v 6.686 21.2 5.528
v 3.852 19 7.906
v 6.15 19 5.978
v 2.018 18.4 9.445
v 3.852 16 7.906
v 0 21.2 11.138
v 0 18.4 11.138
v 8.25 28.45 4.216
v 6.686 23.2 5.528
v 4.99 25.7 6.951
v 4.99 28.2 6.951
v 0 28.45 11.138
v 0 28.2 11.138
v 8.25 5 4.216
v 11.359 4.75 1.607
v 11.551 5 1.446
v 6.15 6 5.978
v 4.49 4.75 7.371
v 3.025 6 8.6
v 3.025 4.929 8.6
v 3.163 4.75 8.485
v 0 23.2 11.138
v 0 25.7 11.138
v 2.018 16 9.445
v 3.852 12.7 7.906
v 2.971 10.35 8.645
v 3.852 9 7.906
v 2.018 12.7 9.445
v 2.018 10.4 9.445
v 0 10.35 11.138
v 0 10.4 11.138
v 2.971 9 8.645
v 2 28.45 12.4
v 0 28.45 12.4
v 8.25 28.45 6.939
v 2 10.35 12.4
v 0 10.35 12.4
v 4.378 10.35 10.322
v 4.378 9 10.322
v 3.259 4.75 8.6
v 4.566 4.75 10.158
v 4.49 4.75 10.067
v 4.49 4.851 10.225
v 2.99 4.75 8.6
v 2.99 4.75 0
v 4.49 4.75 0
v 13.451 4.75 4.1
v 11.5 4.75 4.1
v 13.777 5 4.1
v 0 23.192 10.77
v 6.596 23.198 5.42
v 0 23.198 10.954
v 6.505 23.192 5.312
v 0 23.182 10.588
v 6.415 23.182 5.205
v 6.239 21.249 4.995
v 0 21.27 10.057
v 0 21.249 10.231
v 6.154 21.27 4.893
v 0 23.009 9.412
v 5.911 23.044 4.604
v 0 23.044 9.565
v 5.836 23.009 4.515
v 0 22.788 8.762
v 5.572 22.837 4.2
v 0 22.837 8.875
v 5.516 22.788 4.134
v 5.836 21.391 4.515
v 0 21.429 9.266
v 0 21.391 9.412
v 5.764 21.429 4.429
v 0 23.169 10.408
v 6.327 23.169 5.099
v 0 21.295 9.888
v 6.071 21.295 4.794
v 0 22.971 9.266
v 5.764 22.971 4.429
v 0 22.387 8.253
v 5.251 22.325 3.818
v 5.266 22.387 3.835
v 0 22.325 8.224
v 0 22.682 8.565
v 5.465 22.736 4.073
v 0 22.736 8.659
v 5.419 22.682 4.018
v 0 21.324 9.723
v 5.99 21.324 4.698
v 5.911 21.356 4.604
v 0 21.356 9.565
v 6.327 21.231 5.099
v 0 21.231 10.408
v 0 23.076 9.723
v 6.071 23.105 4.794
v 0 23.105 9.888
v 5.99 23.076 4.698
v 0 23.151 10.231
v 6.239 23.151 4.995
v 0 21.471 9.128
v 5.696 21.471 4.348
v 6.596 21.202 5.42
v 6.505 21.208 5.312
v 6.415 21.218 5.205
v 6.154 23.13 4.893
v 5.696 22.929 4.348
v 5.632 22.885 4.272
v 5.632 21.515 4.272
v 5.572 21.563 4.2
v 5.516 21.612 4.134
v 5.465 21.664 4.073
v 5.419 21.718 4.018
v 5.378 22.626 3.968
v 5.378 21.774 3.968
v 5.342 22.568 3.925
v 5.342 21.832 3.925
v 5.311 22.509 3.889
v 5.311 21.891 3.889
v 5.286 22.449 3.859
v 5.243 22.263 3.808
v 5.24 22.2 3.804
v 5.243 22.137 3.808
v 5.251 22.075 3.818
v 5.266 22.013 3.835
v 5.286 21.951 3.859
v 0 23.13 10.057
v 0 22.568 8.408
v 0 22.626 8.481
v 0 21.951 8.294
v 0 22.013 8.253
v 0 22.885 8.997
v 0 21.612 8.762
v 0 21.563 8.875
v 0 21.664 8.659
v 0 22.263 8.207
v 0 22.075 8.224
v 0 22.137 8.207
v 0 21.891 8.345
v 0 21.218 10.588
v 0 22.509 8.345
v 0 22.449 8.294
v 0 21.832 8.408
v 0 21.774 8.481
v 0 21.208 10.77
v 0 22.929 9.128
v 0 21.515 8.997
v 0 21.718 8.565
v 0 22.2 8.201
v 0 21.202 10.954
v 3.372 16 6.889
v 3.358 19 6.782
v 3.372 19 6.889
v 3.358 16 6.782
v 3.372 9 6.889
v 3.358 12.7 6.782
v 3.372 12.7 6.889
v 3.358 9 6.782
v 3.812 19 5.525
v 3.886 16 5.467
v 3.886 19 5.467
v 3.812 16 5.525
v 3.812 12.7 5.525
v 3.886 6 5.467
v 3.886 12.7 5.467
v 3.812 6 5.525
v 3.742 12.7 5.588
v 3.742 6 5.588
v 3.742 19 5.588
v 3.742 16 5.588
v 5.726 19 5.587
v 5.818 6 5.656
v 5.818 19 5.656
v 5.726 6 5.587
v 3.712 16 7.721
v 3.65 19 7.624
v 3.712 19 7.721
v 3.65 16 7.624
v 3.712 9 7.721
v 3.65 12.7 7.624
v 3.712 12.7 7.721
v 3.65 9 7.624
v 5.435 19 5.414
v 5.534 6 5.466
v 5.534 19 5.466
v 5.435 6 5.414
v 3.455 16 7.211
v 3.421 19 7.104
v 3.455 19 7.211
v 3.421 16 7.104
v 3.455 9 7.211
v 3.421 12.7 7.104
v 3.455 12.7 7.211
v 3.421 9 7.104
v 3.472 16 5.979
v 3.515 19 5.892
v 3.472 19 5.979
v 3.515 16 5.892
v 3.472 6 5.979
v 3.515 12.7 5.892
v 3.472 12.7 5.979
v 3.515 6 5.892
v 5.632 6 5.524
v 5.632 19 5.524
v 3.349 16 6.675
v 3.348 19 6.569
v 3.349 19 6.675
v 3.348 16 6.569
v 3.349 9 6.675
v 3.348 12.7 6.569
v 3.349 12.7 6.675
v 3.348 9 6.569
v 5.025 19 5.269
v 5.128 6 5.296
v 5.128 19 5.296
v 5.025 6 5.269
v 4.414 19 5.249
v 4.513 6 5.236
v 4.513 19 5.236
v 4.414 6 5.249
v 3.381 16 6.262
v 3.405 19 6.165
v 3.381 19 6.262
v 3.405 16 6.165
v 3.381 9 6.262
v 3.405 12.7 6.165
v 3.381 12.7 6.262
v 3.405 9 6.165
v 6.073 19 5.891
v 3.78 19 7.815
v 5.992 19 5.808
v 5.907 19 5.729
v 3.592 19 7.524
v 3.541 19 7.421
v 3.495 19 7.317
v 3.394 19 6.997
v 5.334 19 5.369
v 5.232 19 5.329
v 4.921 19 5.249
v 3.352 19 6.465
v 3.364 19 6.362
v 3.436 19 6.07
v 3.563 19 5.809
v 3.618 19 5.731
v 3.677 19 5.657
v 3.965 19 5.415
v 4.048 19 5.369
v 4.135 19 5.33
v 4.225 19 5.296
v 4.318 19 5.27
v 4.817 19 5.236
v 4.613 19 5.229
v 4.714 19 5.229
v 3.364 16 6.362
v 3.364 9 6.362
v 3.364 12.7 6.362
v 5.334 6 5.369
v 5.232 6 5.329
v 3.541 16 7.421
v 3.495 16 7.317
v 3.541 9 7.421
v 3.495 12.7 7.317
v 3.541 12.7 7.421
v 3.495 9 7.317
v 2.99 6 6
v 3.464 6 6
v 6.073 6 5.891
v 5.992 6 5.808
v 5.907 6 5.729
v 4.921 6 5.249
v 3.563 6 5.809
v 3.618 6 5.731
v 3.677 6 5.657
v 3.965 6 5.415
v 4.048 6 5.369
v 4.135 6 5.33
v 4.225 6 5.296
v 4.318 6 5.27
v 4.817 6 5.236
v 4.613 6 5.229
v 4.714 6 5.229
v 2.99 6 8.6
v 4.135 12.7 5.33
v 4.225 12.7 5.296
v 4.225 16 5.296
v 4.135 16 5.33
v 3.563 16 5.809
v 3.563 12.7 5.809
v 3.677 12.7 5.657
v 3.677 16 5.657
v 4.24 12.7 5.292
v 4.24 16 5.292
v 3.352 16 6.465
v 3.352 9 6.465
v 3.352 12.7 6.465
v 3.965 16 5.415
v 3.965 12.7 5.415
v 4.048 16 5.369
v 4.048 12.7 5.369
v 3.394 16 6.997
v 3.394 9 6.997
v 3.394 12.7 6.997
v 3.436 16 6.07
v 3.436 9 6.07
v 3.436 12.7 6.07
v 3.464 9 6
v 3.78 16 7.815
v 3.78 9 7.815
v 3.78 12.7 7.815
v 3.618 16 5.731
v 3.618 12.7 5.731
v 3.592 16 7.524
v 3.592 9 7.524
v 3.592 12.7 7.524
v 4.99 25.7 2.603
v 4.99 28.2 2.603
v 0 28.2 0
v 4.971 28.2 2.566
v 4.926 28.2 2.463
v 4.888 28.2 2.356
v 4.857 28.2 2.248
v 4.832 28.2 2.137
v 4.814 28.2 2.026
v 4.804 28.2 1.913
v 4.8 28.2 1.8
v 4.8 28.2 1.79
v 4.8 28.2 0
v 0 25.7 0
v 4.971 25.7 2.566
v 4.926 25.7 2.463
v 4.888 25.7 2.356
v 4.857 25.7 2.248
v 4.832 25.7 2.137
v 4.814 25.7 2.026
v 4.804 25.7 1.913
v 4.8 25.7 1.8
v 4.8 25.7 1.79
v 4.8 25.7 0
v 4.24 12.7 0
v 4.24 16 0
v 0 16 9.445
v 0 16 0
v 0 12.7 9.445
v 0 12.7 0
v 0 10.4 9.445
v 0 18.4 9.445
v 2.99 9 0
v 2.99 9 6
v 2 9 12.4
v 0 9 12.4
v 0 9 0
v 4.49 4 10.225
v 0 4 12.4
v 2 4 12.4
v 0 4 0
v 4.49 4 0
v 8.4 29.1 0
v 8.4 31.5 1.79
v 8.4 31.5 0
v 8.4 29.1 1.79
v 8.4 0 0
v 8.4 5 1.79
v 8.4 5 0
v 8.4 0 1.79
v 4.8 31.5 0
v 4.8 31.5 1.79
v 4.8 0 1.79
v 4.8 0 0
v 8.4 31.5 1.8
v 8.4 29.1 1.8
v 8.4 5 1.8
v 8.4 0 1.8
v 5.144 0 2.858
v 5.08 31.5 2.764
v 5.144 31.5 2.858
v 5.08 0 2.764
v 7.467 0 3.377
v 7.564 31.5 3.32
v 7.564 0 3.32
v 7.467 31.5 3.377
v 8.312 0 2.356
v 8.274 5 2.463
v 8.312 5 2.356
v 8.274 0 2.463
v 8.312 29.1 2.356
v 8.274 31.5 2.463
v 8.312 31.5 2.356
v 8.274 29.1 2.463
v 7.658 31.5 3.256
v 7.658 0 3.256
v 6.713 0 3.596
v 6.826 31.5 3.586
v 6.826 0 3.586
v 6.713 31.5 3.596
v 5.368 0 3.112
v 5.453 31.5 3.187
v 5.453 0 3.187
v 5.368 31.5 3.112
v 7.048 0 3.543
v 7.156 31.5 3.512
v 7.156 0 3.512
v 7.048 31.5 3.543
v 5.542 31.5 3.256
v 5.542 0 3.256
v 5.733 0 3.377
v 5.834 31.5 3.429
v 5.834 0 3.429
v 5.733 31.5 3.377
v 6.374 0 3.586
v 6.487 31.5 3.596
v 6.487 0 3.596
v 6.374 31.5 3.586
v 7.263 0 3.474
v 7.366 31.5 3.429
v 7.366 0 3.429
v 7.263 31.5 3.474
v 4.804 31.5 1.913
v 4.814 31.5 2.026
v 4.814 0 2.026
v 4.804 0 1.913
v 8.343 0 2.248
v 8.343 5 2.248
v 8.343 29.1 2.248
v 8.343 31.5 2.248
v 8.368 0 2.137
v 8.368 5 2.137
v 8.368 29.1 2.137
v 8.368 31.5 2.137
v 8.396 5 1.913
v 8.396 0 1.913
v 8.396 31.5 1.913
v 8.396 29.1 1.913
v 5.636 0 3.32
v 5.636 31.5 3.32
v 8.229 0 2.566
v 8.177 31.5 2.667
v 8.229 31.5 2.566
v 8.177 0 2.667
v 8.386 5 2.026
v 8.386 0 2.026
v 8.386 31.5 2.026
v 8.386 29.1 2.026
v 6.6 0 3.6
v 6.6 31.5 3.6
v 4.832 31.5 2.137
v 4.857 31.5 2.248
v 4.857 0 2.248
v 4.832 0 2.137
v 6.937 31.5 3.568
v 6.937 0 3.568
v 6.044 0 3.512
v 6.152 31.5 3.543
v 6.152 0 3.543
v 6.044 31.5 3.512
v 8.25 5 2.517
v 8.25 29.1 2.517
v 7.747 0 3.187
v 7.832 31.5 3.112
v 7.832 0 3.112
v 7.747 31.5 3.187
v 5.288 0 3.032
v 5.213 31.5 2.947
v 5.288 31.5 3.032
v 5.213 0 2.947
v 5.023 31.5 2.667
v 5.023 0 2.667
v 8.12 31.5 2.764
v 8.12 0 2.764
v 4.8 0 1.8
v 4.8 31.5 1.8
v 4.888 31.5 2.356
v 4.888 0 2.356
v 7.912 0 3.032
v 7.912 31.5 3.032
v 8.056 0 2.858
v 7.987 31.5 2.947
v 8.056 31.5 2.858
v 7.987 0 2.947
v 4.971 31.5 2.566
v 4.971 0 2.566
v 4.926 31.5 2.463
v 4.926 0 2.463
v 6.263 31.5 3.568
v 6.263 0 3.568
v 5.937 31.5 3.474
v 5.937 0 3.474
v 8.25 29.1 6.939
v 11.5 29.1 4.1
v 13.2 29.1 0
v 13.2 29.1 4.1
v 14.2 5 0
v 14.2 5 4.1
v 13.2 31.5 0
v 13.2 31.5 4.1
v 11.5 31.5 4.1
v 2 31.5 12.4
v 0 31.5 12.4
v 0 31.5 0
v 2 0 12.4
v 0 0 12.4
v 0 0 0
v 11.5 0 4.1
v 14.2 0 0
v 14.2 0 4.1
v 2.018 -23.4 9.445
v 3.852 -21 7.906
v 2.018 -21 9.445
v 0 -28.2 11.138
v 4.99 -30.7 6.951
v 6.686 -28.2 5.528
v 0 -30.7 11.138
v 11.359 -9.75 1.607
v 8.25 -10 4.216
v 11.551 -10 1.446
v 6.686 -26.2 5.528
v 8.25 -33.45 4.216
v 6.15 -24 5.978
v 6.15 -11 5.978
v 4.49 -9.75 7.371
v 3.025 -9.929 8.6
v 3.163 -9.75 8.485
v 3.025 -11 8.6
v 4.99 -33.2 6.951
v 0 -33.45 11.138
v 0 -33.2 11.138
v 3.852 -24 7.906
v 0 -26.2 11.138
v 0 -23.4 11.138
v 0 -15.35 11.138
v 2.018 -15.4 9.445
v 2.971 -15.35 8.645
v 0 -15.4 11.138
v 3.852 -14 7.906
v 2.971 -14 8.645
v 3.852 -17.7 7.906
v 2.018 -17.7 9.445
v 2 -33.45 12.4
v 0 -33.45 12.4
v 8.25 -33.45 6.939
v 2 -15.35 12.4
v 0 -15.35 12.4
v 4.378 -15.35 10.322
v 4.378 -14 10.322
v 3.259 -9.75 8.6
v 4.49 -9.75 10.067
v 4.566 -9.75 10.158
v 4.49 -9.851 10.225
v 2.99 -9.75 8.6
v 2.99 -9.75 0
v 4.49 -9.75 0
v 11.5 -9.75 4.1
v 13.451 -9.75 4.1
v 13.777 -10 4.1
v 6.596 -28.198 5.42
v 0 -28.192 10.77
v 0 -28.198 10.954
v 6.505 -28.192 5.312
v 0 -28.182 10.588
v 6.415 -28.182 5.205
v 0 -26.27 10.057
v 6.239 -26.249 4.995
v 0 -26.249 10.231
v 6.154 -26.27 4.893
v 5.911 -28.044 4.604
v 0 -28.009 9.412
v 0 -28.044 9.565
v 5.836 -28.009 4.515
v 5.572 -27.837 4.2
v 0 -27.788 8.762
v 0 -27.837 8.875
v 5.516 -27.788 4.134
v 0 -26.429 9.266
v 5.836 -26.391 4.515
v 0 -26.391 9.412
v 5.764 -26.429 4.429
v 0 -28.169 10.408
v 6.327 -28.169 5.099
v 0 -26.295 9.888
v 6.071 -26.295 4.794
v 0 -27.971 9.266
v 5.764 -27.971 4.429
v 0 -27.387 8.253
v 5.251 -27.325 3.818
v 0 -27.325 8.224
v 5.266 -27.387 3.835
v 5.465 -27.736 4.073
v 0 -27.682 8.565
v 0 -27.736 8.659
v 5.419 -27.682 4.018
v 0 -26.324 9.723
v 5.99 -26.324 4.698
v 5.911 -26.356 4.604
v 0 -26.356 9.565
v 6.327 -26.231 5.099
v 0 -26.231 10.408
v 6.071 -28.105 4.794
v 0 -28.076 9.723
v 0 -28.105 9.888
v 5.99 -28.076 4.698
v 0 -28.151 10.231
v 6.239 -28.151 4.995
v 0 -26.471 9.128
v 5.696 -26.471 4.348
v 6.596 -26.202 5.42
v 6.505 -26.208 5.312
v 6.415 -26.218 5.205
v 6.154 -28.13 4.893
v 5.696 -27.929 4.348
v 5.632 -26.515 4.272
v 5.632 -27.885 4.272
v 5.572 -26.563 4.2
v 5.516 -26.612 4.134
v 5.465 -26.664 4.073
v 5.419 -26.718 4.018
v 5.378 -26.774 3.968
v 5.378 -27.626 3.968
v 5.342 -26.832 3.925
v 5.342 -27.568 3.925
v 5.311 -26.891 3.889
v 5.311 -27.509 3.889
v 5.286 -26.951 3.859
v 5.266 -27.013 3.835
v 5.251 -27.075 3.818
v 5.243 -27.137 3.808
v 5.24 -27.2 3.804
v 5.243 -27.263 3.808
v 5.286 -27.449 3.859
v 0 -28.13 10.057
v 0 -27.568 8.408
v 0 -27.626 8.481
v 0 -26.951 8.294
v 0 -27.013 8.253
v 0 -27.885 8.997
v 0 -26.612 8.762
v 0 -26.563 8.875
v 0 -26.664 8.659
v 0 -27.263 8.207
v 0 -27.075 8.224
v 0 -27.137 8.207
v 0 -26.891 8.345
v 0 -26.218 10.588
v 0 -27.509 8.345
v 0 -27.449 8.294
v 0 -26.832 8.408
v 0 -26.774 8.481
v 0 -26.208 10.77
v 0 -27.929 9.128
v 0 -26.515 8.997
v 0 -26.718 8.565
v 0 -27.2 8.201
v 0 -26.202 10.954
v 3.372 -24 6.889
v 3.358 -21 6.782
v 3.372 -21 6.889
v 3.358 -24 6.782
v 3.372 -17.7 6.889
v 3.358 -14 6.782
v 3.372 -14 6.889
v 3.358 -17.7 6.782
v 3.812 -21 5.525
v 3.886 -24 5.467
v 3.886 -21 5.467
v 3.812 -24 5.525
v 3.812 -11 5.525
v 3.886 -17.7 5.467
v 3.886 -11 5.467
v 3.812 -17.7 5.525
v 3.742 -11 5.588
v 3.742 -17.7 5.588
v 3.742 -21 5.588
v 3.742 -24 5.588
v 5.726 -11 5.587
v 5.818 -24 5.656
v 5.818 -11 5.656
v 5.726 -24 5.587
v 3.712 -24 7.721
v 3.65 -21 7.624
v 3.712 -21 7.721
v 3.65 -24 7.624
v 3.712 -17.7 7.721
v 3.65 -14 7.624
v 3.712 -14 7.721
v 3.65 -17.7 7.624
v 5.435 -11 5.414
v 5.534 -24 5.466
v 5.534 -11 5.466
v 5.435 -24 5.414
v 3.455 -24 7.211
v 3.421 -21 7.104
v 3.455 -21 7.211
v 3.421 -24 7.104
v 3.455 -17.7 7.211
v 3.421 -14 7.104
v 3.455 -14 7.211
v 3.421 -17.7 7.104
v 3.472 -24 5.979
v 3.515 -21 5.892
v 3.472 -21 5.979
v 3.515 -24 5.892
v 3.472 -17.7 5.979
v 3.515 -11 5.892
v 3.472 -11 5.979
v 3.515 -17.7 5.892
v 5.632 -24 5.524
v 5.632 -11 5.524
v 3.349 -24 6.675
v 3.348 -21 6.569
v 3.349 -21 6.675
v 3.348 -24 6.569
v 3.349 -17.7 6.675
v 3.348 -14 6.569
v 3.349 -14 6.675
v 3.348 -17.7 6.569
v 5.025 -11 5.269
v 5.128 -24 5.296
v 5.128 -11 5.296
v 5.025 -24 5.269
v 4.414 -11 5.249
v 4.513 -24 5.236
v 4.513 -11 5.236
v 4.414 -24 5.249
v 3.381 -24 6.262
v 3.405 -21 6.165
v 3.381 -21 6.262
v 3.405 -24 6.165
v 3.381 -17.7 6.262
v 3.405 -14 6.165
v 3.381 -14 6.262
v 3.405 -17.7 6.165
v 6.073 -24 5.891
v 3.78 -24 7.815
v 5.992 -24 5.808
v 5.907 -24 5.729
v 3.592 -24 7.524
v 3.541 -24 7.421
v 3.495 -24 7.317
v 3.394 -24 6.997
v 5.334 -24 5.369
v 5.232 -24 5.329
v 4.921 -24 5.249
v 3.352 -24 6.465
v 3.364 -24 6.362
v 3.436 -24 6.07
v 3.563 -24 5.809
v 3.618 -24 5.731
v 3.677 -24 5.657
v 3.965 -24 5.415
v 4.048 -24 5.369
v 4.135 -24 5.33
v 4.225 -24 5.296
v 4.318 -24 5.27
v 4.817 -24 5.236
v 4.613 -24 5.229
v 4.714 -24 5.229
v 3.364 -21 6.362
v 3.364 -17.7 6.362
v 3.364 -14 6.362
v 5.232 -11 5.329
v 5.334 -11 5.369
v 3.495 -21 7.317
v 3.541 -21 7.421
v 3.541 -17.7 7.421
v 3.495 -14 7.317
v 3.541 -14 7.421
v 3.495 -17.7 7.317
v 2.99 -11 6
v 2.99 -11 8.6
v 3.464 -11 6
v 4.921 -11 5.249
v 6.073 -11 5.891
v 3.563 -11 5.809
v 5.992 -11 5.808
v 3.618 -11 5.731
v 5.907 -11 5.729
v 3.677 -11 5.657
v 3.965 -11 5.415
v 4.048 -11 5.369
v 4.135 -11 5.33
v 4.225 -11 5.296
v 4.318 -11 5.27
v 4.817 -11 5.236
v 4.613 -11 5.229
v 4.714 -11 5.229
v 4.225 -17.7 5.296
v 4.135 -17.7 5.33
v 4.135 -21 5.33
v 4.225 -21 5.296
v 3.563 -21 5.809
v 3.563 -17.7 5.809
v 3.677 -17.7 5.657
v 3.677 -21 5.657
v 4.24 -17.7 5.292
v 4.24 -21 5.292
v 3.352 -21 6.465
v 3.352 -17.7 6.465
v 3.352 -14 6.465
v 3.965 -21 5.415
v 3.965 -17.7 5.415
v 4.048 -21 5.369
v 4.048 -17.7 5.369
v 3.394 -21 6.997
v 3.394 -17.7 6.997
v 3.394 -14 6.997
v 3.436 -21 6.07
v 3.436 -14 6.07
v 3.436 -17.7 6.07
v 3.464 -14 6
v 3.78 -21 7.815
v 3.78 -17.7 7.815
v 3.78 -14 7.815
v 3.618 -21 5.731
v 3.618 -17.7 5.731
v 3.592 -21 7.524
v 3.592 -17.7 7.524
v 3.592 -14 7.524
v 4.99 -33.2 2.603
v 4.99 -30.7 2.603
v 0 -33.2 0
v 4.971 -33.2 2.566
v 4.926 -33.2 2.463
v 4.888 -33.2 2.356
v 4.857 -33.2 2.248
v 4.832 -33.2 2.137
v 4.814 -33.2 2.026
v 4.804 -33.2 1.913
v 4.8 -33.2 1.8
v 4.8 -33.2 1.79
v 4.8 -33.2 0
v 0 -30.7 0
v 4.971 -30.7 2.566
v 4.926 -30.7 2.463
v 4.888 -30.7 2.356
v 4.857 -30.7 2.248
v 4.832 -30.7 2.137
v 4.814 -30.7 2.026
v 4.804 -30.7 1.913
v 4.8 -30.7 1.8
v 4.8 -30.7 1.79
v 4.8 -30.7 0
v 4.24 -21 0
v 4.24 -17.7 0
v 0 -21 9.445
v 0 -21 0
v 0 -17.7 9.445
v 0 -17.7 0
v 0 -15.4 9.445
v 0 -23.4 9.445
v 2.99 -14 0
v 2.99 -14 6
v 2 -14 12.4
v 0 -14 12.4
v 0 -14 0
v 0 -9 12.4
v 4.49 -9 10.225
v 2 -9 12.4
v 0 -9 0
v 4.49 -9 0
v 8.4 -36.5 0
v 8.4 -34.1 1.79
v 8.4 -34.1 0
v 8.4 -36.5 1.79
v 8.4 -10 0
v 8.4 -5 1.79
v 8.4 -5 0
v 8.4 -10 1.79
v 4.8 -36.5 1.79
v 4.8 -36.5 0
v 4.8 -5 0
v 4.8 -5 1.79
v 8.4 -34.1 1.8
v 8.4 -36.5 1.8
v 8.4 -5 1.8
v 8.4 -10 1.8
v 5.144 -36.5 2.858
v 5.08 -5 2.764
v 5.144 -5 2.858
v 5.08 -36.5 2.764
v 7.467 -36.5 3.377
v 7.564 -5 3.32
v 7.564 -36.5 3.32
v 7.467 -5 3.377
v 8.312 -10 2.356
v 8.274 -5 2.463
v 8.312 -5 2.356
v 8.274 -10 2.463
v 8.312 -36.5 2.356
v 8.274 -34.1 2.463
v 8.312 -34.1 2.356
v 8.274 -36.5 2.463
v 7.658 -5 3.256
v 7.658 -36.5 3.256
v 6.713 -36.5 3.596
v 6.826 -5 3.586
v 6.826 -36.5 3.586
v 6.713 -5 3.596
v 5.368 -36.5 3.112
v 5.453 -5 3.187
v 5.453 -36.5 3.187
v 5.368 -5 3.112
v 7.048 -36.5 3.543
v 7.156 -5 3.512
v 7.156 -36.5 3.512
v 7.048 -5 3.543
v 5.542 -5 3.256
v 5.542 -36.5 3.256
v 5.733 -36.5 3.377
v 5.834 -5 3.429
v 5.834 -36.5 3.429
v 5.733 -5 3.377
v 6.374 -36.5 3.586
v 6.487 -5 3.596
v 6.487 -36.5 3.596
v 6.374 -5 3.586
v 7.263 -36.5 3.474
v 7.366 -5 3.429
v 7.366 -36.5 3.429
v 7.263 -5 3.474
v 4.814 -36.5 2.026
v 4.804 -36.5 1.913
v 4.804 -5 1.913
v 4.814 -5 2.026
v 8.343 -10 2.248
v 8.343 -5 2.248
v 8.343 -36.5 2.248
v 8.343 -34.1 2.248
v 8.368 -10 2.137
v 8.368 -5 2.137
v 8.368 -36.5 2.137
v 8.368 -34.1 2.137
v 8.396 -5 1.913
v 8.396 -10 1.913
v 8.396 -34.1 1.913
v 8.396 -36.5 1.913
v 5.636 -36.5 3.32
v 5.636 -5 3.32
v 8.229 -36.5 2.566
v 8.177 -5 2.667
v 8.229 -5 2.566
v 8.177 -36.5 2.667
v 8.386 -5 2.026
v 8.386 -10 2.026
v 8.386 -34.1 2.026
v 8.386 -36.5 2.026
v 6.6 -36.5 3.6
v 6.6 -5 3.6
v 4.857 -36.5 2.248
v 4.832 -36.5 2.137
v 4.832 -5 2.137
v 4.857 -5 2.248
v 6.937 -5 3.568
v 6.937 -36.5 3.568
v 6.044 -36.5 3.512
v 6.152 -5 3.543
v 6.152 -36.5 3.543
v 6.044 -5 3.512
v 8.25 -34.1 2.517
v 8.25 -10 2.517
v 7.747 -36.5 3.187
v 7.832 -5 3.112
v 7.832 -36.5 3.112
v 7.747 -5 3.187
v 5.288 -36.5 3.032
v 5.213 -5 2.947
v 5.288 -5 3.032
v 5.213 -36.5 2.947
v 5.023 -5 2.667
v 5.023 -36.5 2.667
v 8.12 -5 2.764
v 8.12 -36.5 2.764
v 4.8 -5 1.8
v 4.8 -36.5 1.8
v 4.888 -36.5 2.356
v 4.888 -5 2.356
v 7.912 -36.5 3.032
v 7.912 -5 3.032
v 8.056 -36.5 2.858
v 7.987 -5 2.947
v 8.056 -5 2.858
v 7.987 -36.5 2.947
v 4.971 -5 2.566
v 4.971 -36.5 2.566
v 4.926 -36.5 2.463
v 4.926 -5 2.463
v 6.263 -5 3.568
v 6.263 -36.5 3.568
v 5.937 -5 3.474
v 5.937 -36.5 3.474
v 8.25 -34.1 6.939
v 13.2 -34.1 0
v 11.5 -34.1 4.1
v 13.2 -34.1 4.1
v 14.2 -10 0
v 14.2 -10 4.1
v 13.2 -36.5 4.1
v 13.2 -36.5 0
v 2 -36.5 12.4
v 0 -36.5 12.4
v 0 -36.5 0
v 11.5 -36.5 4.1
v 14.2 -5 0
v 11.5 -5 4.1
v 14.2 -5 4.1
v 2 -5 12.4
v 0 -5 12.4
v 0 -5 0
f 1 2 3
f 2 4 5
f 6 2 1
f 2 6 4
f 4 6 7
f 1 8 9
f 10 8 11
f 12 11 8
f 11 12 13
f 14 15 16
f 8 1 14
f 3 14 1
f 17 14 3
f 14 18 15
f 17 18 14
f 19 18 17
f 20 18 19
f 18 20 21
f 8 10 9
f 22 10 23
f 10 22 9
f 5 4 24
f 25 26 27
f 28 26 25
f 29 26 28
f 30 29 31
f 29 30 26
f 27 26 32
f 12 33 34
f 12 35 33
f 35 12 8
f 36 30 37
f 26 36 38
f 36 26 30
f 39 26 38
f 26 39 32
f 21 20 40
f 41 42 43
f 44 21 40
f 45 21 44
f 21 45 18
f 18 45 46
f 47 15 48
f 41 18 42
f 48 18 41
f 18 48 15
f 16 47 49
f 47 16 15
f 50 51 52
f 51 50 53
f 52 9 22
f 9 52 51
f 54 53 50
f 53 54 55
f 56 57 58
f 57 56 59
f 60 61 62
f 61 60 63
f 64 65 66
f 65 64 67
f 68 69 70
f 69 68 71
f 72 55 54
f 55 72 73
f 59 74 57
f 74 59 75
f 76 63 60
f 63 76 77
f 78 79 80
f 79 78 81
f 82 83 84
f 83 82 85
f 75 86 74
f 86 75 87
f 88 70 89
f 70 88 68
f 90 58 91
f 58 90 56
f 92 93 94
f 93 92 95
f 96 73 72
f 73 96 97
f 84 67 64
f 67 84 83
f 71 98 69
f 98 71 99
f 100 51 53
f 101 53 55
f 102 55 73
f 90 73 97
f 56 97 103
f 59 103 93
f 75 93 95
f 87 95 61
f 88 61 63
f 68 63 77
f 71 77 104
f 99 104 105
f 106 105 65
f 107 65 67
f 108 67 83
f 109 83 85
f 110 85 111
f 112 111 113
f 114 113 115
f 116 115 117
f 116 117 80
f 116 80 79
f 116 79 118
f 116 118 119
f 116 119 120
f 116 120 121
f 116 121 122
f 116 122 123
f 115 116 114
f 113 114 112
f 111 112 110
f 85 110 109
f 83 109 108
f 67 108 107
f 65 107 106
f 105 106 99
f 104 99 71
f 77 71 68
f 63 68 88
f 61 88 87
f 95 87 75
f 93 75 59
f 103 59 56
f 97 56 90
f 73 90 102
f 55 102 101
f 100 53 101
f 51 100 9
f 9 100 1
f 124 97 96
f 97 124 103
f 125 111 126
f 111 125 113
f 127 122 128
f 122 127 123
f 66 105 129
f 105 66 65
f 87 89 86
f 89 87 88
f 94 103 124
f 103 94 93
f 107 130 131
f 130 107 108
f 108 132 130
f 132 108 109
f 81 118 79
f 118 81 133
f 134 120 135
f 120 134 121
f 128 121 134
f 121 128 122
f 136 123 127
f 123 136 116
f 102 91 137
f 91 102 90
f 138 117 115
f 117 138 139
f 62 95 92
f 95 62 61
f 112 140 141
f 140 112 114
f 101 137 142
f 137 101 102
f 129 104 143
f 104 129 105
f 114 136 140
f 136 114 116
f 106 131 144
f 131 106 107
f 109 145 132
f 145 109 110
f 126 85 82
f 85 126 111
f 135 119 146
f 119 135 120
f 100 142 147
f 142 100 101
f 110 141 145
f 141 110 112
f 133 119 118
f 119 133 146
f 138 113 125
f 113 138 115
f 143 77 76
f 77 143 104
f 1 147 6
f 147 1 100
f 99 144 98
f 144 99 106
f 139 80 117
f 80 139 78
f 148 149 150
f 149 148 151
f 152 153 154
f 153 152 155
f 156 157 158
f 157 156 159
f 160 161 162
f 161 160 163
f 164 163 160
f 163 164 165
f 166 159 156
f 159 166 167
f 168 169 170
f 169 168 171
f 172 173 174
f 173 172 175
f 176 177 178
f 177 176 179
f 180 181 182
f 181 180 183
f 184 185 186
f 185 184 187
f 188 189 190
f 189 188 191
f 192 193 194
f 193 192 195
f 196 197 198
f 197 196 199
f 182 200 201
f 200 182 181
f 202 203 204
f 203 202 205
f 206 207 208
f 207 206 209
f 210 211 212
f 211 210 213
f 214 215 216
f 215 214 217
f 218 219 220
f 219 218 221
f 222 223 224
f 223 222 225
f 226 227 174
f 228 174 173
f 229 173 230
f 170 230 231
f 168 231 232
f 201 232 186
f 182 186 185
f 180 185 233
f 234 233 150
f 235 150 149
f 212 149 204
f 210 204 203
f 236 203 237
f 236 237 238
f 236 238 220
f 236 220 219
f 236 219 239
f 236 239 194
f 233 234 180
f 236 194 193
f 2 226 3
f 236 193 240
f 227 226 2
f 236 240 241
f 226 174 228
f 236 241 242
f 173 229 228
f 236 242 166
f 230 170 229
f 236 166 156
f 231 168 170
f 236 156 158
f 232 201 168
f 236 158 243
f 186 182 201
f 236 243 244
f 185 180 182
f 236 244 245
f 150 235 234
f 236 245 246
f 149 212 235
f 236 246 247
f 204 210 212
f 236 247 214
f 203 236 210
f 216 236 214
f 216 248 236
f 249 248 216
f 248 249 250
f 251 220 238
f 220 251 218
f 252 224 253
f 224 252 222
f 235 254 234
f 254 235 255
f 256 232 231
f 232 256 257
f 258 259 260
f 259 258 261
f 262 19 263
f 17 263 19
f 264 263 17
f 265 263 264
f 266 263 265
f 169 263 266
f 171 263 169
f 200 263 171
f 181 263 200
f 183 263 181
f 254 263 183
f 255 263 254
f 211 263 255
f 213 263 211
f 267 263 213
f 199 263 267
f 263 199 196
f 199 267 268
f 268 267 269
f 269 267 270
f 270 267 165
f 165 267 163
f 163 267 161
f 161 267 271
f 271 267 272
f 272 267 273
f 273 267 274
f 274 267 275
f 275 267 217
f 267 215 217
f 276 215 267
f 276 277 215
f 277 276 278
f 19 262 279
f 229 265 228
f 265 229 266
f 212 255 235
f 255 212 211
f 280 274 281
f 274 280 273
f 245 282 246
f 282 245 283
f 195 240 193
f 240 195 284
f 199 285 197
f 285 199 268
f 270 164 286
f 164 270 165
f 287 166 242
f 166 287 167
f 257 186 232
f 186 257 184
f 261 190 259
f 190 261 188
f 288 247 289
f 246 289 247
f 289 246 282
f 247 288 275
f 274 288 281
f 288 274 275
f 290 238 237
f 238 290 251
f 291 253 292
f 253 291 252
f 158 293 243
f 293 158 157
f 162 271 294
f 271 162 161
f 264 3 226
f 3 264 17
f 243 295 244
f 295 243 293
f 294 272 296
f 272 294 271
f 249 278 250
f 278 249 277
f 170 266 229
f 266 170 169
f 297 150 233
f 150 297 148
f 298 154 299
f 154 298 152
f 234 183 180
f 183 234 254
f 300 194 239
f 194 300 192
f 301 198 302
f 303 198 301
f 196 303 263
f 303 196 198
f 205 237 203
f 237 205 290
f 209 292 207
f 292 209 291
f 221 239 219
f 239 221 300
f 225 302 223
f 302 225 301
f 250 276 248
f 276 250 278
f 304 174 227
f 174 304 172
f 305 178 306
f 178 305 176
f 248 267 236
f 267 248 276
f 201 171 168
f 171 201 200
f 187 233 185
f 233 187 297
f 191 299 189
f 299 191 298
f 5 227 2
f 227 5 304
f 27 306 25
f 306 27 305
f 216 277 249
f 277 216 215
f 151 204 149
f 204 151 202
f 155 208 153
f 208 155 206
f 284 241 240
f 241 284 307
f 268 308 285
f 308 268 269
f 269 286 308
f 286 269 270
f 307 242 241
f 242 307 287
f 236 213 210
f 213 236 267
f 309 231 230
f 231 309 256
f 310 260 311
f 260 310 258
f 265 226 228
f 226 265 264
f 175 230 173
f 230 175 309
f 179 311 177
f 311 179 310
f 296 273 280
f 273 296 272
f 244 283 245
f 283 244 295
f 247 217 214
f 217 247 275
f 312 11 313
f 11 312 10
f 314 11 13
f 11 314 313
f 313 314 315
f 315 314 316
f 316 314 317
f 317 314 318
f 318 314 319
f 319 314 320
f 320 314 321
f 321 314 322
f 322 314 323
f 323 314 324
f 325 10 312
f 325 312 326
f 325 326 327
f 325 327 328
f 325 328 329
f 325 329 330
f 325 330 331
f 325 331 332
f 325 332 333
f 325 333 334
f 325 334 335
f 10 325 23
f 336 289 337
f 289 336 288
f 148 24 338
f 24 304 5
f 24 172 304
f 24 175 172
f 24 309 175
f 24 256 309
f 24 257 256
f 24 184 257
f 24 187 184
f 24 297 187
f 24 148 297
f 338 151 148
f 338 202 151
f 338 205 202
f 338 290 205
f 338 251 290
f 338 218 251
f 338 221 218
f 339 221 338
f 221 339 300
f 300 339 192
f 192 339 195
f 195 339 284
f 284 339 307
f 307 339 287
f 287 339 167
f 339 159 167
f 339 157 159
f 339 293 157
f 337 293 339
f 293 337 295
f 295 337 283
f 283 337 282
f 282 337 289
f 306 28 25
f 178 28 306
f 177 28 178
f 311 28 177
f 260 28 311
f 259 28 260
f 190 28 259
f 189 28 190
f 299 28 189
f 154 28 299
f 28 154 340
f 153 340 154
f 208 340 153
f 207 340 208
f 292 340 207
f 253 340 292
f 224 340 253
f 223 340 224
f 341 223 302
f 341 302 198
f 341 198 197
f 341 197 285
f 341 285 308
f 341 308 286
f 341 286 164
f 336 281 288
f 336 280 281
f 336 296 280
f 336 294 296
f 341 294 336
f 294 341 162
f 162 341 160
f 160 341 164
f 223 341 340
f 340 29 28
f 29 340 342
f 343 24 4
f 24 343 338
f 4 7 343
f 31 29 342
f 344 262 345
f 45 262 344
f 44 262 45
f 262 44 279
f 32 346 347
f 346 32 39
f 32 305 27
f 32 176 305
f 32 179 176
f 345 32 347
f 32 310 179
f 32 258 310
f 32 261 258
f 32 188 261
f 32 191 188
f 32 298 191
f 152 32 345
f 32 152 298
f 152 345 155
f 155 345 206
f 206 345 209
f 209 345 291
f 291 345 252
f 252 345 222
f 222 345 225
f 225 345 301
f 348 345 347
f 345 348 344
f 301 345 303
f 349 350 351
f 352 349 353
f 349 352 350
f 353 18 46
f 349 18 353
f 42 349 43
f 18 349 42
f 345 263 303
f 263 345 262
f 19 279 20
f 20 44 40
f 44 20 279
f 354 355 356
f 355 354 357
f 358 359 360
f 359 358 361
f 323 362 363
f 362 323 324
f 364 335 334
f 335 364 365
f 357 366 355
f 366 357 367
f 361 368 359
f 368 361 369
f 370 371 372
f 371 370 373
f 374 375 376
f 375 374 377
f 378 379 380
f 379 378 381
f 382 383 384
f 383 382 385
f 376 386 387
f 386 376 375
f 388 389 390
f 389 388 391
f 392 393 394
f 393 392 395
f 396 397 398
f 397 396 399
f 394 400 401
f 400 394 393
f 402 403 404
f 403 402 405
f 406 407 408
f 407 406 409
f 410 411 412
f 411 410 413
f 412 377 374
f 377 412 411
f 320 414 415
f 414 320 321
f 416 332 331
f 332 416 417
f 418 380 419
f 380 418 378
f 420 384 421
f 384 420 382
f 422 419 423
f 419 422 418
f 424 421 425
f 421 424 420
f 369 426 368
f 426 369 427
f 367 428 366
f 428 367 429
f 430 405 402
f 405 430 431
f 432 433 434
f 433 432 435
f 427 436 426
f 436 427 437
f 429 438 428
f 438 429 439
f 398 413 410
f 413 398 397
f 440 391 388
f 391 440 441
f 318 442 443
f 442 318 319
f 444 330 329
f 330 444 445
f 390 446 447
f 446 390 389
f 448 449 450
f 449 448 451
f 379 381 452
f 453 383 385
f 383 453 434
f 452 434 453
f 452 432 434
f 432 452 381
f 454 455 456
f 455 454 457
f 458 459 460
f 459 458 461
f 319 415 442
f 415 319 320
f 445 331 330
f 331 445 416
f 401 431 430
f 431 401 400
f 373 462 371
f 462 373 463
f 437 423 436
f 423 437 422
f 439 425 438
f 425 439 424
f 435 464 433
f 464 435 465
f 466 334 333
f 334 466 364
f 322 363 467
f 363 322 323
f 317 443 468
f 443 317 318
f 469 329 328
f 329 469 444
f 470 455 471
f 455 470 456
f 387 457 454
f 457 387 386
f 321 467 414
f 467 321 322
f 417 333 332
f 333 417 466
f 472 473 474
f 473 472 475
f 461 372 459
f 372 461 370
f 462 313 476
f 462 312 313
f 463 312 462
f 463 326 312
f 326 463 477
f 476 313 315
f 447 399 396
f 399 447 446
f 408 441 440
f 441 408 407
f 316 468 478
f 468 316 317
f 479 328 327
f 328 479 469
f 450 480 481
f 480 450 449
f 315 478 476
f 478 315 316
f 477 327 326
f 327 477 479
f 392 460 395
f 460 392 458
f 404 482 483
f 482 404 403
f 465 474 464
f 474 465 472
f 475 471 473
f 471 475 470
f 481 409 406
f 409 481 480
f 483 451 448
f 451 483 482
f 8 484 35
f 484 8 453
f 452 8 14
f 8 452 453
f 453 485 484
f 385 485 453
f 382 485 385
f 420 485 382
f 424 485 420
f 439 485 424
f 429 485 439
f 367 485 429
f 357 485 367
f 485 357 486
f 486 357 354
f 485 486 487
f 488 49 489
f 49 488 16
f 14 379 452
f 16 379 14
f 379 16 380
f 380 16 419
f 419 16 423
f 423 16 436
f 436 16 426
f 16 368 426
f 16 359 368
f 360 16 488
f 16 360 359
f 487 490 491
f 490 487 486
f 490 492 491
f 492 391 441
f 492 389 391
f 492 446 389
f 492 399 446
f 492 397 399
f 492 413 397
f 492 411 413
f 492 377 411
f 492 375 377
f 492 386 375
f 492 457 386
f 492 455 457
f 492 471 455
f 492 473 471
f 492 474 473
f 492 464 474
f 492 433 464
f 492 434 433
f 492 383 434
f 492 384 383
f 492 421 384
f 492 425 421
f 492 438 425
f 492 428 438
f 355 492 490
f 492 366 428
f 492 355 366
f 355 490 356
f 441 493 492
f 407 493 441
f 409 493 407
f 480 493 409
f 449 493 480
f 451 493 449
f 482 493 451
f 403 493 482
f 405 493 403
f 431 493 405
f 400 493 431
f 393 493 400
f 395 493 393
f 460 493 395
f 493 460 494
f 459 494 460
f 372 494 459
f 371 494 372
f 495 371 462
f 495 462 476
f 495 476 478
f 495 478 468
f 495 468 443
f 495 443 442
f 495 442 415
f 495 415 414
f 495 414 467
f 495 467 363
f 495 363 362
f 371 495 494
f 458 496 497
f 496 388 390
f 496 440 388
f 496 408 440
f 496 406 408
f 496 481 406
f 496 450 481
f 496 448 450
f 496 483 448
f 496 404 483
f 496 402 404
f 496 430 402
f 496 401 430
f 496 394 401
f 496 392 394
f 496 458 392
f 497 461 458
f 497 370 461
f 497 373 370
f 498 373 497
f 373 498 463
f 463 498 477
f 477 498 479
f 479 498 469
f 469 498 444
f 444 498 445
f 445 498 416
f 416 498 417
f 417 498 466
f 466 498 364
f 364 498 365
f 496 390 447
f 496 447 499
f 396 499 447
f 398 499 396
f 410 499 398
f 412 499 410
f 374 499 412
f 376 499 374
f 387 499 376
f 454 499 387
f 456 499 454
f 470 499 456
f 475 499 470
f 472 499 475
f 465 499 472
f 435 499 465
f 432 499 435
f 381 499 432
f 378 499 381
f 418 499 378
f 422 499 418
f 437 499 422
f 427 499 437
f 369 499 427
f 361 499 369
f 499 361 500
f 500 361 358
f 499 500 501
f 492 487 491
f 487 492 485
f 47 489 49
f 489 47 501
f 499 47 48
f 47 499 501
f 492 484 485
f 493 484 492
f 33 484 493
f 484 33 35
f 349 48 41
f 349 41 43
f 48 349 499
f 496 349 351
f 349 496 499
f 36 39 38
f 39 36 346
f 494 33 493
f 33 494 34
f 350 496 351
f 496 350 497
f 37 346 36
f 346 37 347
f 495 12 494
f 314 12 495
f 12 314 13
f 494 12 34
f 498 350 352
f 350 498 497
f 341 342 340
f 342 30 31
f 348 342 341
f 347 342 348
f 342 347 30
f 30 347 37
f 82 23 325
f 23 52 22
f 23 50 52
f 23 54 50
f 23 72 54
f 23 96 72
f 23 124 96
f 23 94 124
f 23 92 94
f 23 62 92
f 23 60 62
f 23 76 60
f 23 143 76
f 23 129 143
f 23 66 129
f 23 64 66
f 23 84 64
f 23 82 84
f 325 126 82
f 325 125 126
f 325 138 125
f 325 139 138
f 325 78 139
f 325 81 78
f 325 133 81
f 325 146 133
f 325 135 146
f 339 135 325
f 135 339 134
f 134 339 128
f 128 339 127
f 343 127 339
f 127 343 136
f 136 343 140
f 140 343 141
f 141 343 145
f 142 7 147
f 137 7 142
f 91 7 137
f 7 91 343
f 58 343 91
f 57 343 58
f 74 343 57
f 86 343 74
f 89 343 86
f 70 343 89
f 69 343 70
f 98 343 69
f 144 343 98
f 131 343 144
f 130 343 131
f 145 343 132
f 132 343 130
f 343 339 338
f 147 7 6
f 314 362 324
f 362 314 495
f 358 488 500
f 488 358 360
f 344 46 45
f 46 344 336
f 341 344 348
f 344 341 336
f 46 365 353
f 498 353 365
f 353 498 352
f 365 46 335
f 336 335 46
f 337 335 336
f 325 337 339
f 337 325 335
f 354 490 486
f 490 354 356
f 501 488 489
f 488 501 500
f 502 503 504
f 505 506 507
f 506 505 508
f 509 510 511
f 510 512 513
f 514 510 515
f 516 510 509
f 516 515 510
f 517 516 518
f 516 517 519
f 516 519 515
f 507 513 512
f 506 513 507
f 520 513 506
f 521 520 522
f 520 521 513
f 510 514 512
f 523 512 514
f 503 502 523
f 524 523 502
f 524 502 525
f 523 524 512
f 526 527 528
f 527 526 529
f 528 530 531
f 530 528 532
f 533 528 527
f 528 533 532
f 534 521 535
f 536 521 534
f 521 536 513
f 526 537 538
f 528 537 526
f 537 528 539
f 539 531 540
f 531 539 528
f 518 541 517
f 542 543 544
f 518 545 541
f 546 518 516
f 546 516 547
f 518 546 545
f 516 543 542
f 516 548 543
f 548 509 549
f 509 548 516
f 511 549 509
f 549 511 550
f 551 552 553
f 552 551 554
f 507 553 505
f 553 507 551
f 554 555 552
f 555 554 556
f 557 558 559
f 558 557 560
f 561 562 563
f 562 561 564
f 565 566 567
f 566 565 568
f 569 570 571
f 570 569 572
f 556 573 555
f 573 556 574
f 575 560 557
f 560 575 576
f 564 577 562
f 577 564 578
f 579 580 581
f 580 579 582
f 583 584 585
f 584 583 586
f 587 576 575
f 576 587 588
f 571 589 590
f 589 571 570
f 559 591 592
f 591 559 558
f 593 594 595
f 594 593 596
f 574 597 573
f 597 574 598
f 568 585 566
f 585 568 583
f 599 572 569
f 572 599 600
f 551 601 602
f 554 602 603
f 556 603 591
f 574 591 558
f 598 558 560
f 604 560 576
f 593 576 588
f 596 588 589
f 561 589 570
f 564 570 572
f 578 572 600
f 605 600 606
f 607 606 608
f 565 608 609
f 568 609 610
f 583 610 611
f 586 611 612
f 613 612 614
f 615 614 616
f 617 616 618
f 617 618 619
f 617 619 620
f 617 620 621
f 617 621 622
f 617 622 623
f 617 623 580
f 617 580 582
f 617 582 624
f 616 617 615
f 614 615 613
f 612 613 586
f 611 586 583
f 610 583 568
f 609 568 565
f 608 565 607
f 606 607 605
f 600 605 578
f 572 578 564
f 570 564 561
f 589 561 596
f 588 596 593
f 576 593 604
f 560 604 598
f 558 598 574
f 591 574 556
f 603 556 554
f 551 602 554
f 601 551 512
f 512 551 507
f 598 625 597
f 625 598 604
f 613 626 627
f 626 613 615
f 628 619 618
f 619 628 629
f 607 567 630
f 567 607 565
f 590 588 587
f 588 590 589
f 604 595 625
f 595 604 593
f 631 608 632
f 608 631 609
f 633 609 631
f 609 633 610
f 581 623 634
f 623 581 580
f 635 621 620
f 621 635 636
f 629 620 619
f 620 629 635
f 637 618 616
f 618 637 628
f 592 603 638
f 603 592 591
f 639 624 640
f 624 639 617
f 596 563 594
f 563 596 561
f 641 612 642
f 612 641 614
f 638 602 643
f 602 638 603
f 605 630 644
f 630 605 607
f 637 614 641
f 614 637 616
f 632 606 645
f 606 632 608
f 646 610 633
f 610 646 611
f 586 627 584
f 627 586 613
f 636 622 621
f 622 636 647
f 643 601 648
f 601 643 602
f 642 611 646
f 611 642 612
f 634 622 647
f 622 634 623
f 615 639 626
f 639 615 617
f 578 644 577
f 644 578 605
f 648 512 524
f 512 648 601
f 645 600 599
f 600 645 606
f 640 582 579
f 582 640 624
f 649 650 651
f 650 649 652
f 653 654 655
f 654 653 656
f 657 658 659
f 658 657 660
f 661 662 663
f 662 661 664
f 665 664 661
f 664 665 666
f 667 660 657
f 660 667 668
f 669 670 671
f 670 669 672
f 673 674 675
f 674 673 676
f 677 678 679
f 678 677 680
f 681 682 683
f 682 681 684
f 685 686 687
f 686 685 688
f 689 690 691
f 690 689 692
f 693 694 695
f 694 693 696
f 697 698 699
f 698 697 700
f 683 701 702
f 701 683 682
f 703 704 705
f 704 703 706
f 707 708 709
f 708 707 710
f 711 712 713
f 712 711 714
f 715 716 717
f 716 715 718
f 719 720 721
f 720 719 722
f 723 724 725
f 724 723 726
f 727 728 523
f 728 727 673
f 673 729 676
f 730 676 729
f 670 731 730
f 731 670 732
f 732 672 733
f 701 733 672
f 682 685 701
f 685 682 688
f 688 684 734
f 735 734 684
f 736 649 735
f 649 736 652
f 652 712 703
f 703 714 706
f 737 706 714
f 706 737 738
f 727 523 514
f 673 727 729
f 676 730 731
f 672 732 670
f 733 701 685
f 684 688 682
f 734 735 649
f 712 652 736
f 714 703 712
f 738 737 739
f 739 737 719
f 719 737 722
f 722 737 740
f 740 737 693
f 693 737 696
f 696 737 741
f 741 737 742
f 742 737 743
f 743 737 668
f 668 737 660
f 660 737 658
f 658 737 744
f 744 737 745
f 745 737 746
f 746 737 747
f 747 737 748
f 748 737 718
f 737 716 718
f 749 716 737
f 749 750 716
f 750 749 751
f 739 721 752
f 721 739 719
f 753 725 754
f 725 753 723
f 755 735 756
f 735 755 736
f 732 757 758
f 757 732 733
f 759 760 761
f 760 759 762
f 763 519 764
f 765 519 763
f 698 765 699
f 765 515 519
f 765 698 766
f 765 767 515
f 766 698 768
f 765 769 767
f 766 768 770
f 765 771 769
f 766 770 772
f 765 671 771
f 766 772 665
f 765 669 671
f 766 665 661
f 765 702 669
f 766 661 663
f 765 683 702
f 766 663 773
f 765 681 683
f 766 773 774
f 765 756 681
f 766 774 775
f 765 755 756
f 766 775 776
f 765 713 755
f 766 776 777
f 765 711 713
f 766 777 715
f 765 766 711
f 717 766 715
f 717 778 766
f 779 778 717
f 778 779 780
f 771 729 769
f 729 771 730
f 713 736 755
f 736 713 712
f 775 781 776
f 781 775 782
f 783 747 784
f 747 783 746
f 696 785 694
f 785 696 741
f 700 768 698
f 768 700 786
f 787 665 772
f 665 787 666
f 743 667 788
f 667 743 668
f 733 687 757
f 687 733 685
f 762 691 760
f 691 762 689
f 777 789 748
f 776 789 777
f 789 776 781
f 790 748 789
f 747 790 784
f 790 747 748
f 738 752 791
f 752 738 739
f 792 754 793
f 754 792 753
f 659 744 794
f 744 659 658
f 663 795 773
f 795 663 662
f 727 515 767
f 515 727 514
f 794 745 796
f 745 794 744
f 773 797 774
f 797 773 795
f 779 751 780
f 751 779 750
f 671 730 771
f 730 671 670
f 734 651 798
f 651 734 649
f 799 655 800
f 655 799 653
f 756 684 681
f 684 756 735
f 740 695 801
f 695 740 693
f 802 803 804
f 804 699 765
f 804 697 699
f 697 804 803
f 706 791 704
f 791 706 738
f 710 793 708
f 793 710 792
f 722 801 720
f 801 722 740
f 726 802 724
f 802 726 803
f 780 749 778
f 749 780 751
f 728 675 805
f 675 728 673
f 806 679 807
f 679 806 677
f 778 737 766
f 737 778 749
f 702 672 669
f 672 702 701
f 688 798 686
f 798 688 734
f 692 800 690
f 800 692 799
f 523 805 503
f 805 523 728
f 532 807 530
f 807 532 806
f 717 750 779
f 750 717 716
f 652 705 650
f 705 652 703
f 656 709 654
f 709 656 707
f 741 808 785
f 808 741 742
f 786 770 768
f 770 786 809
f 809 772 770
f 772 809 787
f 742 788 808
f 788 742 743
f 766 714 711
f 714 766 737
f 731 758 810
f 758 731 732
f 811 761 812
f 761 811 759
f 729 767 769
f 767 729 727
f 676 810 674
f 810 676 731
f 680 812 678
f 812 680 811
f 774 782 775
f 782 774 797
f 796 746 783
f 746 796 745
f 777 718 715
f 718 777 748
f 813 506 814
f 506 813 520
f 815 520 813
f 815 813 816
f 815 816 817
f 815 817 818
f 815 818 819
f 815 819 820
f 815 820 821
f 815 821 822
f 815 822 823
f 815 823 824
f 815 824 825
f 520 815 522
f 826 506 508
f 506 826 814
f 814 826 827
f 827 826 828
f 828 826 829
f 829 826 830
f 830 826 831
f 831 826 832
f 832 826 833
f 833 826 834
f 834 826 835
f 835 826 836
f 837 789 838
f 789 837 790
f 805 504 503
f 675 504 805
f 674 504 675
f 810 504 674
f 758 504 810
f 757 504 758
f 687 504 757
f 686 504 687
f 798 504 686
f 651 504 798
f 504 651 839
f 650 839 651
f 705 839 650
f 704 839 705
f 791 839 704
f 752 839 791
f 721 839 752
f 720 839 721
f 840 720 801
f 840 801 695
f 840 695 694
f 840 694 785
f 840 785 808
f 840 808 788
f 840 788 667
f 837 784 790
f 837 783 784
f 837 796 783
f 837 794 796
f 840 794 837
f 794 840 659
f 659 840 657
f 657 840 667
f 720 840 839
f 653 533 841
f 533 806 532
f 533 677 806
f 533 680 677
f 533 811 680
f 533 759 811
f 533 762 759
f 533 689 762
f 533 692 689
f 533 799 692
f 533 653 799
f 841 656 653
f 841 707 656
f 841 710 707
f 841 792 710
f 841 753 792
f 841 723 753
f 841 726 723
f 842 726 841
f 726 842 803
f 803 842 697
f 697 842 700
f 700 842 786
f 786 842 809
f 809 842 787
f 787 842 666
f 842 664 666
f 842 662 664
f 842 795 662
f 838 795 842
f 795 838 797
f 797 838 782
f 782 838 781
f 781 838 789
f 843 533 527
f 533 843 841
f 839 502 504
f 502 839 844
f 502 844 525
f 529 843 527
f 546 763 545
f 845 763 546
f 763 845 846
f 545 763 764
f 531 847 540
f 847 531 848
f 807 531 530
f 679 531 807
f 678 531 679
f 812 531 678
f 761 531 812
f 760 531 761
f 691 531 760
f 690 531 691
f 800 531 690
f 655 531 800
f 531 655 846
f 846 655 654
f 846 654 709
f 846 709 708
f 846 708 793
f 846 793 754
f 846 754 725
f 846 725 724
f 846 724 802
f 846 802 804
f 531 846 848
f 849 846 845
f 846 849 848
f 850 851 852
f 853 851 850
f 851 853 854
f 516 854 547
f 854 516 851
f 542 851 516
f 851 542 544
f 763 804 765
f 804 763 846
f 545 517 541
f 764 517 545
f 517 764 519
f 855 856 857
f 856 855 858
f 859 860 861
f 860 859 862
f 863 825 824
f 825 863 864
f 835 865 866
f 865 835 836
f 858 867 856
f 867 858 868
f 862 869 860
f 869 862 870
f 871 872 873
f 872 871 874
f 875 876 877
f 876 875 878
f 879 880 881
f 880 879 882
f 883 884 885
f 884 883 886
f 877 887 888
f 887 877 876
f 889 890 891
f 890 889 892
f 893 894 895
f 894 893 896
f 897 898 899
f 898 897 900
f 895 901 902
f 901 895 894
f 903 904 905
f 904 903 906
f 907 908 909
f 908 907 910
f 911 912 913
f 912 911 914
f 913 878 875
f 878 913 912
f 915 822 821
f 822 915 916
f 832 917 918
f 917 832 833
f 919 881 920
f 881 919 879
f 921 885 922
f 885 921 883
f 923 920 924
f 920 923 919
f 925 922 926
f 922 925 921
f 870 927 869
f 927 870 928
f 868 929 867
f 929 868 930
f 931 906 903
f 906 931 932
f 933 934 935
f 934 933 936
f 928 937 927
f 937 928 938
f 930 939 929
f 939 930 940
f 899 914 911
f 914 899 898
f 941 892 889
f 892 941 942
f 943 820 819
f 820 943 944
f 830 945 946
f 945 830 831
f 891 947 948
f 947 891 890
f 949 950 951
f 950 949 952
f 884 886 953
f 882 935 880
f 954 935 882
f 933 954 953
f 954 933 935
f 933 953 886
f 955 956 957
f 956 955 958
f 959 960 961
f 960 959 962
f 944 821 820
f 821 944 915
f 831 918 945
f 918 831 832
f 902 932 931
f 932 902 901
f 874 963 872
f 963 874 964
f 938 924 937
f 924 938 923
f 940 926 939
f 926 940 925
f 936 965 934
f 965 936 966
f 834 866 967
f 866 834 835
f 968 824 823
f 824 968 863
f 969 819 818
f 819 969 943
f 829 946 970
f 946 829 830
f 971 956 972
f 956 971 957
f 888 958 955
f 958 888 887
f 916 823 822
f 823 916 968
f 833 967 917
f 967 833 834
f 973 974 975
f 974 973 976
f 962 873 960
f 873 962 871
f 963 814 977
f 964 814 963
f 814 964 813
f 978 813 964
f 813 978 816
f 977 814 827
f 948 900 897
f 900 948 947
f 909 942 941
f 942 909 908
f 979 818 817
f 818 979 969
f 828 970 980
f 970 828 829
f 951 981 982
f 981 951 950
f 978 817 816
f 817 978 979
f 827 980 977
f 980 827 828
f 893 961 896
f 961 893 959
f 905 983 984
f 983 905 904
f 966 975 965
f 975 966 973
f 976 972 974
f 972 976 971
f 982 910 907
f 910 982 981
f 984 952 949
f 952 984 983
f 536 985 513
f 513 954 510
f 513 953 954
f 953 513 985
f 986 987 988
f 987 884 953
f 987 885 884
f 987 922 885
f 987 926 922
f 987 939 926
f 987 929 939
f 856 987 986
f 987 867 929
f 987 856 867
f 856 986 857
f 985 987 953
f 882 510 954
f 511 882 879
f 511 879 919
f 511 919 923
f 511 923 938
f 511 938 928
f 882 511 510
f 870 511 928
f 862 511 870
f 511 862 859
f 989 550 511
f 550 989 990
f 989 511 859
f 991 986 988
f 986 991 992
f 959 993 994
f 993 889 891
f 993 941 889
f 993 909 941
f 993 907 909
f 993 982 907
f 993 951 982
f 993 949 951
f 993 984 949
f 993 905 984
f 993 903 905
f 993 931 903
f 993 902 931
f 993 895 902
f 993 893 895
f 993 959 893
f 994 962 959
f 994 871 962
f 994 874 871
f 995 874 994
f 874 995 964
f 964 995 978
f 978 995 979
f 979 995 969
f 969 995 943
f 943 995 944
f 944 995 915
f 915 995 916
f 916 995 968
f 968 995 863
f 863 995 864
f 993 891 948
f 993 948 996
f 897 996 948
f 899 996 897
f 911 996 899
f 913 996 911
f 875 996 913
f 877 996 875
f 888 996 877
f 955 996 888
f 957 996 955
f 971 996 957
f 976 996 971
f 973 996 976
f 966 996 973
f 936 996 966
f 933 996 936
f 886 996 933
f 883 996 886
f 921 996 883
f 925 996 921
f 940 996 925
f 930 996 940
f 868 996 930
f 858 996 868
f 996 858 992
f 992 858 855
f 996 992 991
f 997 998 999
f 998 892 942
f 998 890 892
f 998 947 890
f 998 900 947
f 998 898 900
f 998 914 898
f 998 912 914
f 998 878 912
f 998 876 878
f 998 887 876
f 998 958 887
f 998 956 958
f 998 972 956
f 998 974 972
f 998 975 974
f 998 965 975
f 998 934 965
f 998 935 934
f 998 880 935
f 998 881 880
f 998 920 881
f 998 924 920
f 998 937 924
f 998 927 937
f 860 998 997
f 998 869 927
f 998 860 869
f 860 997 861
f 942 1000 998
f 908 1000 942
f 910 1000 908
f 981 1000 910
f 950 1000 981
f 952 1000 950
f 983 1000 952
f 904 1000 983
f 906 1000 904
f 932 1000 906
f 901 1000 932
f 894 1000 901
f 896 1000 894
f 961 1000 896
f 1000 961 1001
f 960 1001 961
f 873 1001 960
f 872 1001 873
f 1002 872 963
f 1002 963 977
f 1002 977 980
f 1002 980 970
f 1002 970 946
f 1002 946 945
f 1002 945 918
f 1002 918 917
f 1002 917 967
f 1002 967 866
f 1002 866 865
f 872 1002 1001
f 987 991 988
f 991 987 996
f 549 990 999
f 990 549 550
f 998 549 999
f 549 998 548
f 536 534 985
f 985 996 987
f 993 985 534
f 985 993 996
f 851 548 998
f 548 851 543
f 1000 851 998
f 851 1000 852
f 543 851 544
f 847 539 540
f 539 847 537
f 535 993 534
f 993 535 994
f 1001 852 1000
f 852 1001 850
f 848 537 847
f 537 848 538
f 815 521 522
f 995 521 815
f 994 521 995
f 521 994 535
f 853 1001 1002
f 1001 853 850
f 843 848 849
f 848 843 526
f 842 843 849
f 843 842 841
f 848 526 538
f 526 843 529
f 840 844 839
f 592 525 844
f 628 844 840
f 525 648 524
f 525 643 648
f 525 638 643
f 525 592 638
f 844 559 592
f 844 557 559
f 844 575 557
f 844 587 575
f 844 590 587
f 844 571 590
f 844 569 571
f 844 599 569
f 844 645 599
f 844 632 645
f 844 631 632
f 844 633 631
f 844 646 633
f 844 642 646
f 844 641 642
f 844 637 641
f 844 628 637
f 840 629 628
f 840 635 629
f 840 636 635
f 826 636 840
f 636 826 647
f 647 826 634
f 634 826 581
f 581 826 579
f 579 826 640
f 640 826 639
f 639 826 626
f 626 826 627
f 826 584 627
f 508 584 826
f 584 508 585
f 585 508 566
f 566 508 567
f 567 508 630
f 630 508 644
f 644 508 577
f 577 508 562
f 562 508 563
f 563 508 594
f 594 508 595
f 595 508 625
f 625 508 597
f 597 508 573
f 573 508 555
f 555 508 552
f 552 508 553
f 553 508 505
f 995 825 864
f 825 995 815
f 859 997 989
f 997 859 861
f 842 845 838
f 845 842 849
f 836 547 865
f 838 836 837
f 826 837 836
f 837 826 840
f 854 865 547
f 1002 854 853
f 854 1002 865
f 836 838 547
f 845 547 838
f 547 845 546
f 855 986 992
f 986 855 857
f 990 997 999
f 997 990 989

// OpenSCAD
module trackman_support () {
    difference() {

        translate([0,31.5,0]) rotate([90,0,0]) linear_extrude(31.5) {
            polygon([[0,0],[14.2,0],[14.2,4.1],[11.5,4.1],[2,12.4],[0,12.4]]);
        }

        union () {
            color("darkgreen") translate([14.5-1.6*cos(40),5,0]) rotate([40,0,90]) 
            union() {
                difference() {
                    linear_extrude(1.6+5) {
                            offset(r=0.25) polygon([[(23.2-20.5)/2,-2],
                                [23.2-(23.2-20.5)/2,-2],
                                [23.2-(23.2-20.5)/2,2.5],
                                [23.2,2.5],
                                [23.2,22.1],
                                [23.2-8.9,22.1],
                                [23.2-8.9,17.4+2], // +2 to remove overhang
                                [23.2-17.6,17.4+2],
                                [23.2-17.6,13.2],
                                [0,13.2],
                                [0,2.5],
                                [(23.2-20.5)/2,2.5]   
                            ]);
                        }
                     //translate([2,6.0,-0.01]) cube([2,1.5,2]);
                     //translate([15,6.0,-0.01]) cube([3,1.5,2]);
                }
                translate([23.2-6,22.1-14+0.5,0]) scale([1,1,2.25]) rotate([-90,0,0]) cylinder(h=14,r=1,$fn=100);
                translate([1,17.4-6.6,0]) scale([1,1.5,1.85]) rotate([0,90,0]) cylinder(h=13,r=1,$fn=100);
                //translate([5.5,6,0]) rotate([0,90,0]) cylinder(h=9,r=1,$fn=100);
            }
            translate([-0.01,25.7,-0.01]) cube([5.0,2.5,15]);
            translate([-0.01,12.7,-0.01]) cube([4.25,3.3,15]);
            translate([-0.01,10.4,17.6*sin(45)-3]) cube([4.0,8,5]);
            translate([-0.01,4,-0.01]) cube([3.0,5.0,15]);
            translate([-0.01,4,-0.01]) cube([4.5,0.75,15]);
            translate([-0.01,6,6.0]) cube([4.5,3.0,15]);
            translate([-0.01,4,8.6]) cube([4.5,3.0,15]);
            //translate([4.8,-0.01,-0.01]) cube([3.6,32.0,3.6]);
            translate([4.8,-0.01,-0.01]) cube([3.6,32.0,1.8]);
            translate([4.8+1.8,-0.01,1.8]) rotate([-90,0,0]) cylinder(h=32.0,r=1.8,$fn=100);
            translate([8.25,5.,-0.01]) cube([8.0,24.1,10]);
            translate([11,5.,-0.01]) cube([8.0,24.1,10]);
            //translate([8.0,5,-0.01]) cube([8.0,4.5,8.0]);
            //translate([8.0,20.5,-0.01]) cube([8.0,9.1,8.0]);
            translate([13.2,29,-0.01]) cube([8.0,24.6,4.2]);
        }
    }
}

trackman_support();
translate([0,-5,0]) mirror([0,1,0]) trackman_support();
